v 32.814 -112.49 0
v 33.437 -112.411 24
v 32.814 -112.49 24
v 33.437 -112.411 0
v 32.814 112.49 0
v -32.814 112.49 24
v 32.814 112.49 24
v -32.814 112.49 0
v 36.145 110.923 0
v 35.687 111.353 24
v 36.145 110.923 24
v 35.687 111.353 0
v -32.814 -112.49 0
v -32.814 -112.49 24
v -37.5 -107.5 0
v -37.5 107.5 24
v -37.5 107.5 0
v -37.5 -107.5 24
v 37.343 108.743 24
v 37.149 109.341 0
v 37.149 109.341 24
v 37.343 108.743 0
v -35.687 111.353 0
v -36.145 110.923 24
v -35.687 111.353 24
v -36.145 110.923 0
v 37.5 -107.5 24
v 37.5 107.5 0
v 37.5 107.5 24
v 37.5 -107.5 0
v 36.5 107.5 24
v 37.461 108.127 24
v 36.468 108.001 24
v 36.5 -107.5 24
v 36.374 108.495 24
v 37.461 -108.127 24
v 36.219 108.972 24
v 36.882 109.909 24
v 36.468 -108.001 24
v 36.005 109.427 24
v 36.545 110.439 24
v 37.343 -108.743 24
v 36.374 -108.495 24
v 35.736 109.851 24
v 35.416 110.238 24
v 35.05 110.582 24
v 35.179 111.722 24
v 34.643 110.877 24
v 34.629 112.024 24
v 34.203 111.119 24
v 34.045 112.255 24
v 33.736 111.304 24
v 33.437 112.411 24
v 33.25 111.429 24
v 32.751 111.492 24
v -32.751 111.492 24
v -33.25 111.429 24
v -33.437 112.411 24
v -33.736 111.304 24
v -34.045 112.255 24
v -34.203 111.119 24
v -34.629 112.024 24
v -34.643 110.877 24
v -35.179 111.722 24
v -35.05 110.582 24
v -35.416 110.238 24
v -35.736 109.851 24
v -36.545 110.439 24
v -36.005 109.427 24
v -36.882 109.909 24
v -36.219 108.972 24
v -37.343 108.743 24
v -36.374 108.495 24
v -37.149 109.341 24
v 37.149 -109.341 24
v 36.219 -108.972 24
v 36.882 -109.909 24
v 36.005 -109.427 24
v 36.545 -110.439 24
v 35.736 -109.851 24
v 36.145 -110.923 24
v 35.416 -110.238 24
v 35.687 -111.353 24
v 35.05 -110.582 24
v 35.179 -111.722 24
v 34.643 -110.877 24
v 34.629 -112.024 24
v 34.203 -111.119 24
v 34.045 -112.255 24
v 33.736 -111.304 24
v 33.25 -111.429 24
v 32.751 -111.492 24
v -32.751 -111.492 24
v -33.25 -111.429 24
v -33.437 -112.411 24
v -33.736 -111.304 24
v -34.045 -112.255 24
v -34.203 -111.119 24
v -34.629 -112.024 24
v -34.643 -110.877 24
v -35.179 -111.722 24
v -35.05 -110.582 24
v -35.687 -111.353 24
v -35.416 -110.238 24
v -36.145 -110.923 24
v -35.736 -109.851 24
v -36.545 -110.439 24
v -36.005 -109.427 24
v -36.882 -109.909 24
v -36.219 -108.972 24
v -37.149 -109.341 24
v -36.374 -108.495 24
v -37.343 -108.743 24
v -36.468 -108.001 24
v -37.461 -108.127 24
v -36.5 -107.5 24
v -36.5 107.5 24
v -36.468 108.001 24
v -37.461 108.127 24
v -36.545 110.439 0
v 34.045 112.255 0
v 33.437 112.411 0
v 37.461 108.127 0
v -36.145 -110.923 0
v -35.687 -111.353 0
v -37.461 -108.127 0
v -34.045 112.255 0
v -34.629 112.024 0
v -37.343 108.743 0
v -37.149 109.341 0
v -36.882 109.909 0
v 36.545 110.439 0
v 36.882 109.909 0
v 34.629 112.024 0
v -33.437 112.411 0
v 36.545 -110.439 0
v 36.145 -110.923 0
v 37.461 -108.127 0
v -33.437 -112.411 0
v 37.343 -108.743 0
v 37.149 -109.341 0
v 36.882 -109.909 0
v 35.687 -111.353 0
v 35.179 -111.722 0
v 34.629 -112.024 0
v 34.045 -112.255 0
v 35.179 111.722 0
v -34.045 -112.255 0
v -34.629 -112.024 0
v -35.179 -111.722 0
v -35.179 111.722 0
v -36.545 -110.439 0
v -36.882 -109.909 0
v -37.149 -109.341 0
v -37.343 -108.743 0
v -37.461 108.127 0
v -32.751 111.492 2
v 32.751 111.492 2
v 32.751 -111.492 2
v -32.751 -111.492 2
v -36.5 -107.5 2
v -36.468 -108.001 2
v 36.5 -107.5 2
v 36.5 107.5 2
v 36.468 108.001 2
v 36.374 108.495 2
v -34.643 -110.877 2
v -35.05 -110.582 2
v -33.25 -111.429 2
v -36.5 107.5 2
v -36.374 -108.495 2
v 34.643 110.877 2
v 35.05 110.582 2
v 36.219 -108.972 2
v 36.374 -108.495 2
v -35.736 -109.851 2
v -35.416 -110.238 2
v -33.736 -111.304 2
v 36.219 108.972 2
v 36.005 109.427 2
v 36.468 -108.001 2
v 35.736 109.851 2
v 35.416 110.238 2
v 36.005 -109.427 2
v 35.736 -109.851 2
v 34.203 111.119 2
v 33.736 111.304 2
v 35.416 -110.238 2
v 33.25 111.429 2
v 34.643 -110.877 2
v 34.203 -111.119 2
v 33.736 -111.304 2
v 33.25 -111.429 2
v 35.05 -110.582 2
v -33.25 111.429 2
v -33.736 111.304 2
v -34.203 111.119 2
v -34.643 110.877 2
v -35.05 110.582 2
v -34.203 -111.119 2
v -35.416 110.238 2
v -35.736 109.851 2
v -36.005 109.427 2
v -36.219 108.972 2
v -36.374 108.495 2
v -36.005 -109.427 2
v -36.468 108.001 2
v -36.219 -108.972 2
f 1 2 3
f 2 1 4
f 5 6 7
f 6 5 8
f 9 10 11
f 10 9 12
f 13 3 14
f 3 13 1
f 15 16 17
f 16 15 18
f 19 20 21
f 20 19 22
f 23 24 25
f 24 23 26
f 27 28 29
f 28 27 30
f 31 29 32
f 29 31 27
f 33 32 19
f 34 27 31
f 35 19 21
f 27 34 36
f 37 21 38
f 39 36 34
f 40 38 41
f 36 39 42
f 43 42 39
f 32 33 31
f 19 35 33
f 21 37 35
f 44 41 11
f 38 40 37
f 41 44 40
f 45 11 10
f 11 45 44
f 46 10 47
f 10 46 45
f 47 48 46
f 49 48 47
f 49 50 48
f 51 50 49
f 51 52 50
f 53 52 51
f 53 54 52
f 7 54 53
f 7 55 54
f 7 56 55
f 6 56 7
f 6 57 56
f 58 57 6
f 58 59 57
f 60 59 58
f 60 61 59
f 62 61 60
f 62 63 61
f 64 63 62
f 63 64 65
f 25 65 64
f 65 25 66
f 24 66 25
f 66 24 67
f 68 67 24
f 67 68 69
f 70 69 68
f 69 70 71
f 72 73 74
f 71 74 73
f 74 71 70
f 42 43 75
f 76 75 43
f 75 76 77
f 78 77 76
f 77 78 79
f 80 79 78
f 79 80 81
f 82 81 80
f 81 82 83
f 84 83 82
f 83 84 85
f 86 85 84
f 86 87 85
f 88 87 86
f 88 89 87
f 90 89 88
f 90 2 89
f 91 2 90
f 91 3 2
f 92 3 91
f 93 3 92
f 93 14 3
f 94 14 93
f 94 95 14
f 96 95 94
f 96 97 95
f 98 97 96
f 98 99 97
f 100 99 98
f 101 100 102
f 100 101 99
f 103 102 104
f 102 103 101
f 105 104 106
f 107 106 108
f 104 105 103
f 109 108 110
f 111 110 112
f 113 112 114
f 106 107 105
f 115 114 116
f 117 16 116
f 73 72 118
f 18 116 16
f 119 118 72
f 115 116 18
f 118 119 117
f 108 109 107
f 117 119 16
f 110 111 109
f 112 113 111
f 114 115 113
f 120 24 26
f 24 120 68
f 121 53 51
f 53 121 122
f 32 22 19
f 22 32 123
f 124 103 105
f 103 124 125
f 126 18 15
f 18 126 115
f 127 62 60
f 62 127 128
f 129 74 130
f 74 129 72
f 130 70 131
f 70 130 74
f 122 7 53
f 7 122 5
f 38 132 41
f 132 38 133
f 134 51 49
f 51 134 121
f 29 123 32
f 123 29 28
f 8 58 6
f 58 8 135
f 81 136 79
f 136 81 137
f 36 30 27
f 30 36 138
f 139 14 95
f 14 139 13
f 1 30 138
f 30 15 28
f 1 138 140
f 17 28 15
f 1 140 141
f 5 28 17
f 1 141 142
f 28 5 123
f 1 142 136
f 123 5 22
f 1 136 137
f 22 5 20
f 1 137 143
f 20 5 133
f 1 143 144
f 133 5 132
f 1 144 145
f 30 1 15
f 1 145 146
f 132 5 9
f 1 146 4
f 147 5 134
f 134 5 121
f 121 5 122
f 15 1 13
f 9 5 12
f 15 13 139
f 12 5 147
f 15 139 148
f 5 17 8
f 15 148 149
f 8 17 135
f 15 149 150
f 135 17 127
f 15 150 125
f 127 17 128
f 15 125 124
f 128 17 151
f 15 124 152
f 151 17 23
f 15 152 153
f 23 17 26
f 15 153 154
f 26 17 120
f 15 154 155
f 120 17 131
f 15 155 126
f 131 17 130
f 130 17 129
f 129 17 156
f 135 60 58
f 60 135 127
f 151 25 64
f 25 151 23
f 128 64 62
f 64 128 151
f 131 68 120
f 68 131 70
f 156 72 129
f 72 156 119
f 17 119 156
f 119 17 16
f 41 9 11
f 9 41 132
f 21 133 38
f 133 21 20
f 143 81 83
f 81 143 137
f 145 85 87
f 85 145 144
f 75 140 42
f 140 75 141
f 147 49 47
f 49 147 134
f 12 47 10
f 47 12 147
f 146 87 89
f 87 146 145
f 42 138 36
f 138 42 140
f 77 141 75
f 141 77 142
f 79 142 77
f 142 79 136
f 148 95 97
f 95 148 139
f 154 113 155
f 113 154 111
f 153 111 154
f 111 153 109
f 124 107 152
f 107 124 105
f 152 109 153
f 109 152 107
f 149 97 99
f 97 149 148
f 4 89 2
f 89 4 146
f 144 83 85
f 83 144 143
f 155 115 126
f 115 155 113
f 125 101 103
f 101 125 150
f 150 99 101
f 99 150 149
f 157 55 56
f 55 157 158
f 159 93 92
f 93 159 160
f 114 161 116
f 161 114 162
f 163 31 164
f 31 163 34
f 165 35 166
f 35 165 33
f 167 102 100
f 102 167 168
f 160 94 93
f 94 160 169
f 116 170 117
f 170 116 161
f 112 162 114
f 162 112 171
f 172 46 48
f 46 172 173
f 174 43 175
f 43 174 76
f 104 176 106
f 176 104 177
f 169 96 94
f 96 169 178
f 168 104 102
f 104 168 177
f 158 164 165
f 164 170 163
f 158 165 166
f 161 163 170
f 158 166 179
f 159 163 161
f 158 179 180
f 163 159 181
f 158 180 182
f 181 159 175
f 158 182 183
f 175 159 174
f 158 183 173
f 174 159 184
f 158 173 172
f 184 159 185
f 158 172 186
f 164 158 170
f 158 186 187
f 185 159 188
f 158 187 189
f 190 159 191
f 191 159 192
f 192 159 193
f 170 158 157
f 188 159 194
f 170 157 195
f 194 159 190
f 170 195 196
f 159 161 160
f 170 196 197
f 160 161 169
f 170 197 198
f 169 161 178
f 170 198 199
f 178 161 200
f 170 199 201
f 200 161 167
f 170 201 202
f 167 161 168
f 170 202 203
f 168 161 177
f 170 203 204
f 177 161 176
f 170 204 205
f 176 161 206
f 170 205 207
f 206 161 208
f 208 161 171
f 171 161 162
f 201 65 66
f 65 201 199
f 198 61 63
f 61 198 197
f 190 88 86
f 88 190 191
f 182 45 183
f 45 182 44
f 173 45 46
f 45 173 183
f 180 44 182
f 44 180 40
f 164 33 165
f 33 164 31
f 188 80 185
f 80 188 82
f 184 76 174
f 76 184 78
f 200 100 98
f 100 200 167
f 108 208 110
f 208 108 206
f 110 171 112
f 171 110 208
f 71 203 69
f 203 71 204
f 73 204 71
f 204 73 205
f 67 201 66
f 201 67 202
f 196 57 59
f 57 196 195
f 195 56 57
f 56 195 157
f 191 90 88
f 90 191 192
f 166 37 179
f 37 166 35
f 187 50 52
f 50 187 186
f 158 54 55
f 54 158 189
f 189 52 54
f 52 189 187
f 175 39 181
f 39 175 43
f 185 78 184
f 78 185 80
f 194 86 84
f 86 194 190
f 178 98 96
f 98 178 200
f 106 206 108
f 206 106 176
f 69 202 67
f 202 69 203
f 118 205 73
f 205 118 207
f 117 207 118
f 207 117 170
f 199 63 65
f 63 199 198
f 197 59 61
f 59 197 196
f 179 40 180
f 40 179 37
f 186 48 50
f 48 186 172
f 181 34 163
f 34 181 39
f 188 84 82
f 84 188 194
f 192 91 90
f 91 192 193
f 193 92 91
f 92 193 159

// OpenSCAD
$fn = 50;


difference() {
	union() {
		hull() {
			translate(v = [-32.5000000000, 107.5000000000, 0]) {
				cylinder(h = 24, r = 5);
			}
			translate(v = [32.5000000000, 107.5000000000, 0]) {
				cylinder(h = 24, r = 5);
			}
			translate(v = [-32.5000000000, -107.5000000000, 0]) {
				cylinder(h = 24, r = 5);
			}
			translate(v = [32.5000000000, -107.5000000000, 0]) {
				cylinder(h = 24, r = 5);
			}
		}
	}
	union() {
		translate(v = [0, 0, 2]) {
			hull() {
				translate(v = [-32.5000000000, 107.5000000000, 0]) {
					cylinder(h = 22, r = 4);
				}
				translate(v = [32.5000000000, 107.5000000000, 0]) {
					cylinder(h = 22, r = 4);
				}
				translate(v = [-32.5000000000, -107.5000000000, 0]) {
					cylinder(h = 22, r = 4);
				}
				translate(v = [32.5000000000, -107.5000000000, 0]) {
					cylinder(h = 22, r = 4);
				}
			}
		}
	}
}
